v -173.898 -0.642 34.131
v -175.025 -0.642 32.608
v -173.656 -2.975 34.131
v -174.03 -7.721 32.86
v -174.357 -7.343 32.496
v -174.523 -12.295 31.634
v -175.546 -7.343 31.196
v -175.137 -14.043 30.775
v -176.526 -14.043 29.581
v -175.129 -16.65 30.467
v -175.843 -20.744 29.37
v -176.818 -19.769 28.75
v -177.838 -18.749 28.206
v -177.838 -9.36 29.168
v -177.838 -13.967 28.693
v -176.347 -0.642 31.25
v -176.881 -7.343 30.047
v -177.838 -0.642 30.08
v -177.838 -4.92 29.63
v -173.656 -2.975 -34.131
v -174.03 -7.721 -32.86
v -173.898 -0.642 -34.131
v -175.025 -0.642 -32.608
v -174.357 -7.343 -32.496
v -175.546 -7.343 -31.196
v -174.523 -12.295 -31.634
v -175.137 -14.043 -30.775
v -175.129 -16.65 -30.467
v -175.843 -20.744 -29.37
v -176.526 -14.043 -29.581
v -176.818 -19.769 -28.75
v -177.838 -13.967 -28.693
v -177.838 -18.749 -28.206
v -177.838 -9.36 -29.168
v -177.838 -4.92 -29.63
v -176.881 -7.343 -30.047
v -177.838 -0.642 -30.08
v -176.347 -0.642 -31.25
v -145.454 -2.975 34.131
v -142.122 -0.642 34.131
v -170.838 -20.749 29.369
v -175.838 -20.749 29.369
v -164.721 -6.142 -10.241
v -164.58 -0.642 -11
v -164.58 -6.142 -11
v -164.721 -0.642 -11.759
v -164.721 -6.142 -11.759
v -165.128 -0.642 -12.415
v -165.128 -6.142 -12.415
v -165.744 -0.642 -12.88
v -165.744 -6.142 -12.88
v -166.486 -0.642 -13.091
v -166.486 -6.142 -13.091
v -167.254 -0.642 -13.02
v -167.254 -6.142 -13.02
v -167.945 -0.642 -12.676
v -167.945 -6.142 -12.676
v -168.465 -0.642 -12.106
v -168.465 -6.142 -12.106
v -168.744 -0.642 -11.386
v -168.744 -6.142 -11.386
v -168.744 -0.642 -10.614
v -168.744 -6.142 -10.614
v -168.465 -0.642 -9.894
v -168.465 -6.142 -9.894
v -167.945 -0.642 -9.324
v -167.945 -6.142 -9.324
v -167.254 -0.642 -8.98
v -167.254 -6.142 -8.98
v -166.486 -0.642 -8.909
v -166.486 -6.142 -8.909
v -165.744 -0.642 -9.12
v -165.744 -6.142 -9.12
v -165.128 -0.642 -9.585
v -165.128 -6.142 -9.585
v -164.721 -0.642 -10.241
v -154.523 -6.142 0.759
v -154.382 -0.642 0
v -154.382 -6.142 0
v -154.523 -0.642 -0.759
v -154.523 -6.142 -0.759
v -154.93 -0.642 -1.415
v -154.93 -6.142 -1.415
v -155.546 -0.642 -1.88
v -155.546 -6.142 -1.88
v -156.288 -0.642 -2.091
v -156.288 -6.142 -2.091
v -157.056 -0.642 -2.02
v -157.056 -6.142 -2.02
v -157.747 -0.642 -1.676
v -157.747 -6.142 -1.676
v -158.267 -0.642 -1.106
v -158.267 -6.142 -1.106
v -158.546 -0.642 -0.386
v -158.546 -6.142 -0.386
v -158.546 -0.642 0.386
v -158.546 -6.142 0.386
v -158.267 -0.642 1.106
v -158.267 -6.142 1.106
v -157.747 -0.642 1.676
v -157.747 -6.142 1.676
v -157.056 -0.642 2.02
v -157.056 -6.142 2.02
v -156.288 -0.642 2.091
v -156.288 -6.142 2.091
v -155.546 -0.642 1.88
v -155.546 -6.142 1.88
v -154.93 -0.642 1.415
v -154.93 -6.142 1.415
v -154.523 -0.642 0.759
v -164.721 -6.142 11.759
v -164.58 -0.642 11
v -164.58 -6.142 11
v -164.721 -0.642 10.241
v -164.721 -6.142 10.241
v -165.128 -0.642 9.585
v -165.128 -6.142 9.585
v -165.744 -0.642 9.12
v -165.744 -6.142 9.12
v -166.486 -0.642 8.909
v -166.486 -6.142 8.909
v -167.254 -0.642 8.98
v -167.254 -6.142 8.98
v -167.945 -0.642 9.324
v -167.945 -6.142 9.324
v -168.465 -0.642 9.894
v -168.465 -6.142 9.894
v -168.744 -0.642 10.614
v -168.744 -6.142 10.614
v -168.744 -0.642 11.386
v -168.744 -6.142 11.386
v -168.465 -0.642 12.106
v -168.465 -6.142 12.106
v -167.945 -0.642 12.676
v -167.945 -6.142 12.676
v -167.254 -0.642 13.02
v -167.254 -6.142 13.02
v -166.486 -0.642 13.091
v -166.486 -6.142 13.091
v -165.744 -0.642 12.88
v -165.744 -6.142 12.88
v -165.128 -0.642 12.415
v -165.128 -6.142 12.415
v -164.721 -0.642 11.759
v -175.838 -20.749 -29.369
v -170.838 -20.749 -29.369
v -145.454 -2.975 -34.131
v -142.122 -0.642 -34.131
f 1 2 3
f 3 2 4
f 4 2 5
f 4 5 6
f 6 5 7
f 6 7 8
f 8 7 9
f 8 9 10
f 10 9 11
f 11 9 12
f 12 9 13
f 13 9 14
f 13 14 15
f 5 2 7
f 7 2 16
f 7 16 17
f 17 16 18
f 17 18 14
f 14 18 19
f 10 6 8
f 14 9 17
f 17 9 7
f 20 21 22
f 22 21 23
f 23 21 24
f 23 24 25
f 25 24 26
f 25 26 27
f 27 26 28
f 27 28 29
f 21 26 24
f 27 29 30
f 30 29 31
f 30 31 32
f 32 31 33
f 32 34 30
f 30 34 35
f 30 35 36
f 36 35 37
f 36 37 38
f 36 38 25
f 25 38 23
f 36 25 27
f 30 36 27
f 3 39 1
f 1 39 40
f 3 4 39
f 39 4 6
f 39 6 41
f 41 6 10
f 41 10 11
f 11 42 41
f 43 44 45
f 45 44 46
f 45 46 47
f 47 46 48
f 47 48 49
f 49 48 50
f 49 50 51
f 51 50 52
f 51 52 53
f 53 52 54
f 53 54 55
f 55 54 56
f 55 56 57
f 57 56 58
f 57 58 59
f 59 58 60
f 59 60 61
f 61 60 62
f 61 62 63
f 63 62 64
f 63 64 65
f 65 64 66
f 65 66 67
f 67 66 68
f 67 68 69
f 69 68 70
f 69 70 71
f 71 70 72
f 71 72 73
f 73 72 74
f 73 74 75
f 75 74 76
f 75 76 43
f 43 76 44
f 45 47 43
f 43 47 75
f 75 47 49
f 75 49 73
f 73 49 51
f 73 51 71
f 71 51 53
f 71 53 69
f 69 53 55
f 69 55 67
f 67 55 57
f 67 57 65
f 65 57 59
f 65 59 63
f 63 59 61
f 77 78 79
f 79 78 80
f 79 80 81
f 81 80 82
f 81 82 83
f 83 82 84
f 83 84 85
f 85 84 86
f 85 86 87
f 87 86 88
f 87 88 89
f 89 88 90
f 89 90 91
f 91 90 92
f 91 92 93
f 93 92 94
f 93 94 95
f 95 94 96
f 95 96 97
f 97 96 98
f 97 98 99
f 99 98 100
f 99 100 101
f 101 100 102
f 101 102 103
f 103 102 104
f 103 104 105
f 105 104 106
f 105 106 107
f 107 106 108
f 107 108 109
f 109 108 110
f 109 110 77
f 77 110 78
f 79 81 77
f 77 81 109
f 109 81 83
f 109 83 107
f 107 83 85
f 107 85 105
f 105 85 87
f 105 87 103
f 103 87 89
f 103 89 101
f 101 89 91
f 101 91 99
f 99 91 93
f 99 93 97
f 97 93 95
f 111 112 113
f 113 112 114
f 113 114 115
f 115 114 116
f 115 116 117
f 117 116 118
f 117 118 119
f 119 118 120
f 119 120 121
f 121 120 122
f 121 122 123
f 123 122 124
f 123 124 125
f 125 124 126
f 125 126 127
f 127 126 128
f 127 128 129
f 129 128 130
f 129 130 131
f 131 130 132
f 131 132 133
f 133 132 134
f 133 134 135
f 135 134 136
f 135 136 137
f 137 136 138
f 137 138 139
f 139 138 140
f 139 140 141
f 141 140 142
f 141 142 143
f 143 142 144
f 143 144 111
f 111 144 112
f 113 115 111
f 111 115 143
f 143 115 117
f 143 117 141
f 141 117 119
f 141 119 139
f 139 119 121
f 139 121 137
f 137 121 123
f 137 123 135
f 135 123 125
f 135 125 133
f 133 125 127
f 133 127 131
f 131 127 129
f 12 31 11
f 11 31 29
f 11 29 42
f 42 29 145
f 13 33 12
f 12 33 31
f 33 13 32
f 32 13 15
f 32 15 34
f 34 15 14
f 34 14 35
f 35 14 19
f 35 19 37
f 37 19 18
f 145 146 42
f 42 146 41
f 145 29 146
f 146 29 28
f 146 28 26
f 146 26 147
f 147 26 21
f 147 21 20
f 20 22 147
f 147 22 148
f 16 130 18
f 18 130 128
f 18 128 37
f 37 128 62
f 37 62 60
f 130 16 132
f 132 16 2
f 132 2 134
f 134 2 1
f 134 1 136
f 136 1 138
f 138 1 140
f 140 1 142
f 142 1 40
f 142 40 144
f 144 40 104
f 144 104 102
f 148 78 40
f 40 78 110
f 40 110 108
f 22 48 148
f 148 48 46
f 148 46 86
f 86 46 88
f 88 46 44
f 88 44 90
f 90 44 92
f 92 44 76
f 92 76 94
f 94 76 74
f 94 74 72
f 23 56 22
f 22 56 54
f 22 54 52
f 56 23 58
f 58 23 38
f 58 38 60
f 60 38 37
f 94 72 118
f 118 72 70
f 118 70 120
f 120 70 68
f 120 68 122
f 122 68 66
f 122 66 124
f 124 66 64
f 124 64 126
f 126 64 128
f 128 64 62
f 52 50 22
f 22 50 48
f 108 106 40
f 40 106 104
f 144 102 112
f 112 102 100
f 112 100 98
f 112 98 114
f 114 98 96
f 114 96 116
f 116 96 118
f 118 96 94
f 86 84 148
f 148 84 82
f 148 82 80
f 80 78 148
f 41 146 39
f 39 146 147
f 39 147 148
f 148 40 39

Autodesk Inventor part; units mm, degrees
ref_plane "YZ Plane" through (0, 0, 0) normal (1, 0, 0) x (0, 1, 0)
ref_plane "XZ Plane" through (0, 0, 0) normal (0, 1, 0) x (-1, 0, 0)
ref_plane "XY Plane" through (0, 0, 0) normal (0, 0, 1) x (1, 0, 0)
sketch "Sketch1" plane through (0, 0, 0) normal (0, 0, 1) x (1, 0, 0)
  line L0 (-108.119909, -0.642406) -> (-283.474909, -0.642406)
  line L1 (-142.122291, -0.642406) -> (-170.837871, -20.749272)
  line L2 (-142.122291, -0.642406) -> (-107.067041, -0.642406) construction
  line L3 (-170.837871, -20.749272) -> (-177.837871, -20.749272)
  line L4 (-177.837871, -20.749272) -> (-184.577322, -0.642406)
  line L5 (-177.837871, -20.749272) -> (-177.837871, -0.642406)
  point P0 (0, 0)
  dimension "d0" = 145
  dimension "d1" = 7
extrude "Extrusion1" add sketch "Sketch1" along normal mid plane 68.2625 contours L1 L3 L5 L0
chamfer "Chamfer1" distance 4.7625 angle 75 2 edges at (-174.3379, -20.7493, -34.1313) (-174.3379, -20.7493, 34.1313) measured on face at (-175.5045, -20.7493, -11.3771)
chamfer "Chamfer2" distance 2 angle 45 1 edges at (-177.8379, -20.7493, 0)
sketch "Sketch2" plane through (-177.837871, -0.642406, 34.13125) normal (0, 1, 0) x (1, 0, 0)
  circle A0 centre (11.158205, 23.13125) radius 2.1
  circle A1 centre (21.356244, 34.13125) radius 2.1
  circle A2 centre (11.158205, 45.13125) radius 2.1
  point P0 (177.837871, 34.13125)
extrude "Extrusion2" cut sketch "Sketch2" against normal blind 5.5
sketch "Sketch3" plane through (-177.837871, -0.642406, 34.13125) normal (0, 1, 0) x (1, 0, 0)
  ellipse E0 centre (-9.038126, 75.297581) end of major axis (-3.616987, 62.831943) minor radius 11.723829
  ellipse E1 centre (-5.030683, 77.040364) end of major axis (-0.216713, 65.970883) minor radius 10.410756
  ellipse E2 centre (-9.038126, 75.297581) end of major axis (-3.616987, 62.831943) minor radius 11.723829
  ellipse E3 centre (-5.030683, 77.040364) end of major axis (-0.216713, 65.970883) minor radius 10.410756
  circle A0 centre (-7.965707, 75.900412) radius 14.145392
  line L0 (35.71558, 68.2625) -> (35.71558, 0)
  line L1 (35.71558, 34.13125) -> (24.180949, 34.13125) construction
  circle A1 centre (-7.965707, -7.637912) radius 14.145392
  point P0 (177.837871, 34.13125)
sketch "Sketch3 outline for Extrusion3" plane through (-177.837871, -0.642406, 34.13125) normal (0, 1, 0) x (1, 0, 0)
  circle A0 centre (-7.965707, -7.637912) radius 14.145392
  circle A1 centre (-7.965707, 75.900412) radius 14.145392
extrude "Extrusion3" cut sketch "Sketch3 outline for Extrusion3" against normal blind 25.4 draft 5
properties part number "Head_Fin_Bottom"
